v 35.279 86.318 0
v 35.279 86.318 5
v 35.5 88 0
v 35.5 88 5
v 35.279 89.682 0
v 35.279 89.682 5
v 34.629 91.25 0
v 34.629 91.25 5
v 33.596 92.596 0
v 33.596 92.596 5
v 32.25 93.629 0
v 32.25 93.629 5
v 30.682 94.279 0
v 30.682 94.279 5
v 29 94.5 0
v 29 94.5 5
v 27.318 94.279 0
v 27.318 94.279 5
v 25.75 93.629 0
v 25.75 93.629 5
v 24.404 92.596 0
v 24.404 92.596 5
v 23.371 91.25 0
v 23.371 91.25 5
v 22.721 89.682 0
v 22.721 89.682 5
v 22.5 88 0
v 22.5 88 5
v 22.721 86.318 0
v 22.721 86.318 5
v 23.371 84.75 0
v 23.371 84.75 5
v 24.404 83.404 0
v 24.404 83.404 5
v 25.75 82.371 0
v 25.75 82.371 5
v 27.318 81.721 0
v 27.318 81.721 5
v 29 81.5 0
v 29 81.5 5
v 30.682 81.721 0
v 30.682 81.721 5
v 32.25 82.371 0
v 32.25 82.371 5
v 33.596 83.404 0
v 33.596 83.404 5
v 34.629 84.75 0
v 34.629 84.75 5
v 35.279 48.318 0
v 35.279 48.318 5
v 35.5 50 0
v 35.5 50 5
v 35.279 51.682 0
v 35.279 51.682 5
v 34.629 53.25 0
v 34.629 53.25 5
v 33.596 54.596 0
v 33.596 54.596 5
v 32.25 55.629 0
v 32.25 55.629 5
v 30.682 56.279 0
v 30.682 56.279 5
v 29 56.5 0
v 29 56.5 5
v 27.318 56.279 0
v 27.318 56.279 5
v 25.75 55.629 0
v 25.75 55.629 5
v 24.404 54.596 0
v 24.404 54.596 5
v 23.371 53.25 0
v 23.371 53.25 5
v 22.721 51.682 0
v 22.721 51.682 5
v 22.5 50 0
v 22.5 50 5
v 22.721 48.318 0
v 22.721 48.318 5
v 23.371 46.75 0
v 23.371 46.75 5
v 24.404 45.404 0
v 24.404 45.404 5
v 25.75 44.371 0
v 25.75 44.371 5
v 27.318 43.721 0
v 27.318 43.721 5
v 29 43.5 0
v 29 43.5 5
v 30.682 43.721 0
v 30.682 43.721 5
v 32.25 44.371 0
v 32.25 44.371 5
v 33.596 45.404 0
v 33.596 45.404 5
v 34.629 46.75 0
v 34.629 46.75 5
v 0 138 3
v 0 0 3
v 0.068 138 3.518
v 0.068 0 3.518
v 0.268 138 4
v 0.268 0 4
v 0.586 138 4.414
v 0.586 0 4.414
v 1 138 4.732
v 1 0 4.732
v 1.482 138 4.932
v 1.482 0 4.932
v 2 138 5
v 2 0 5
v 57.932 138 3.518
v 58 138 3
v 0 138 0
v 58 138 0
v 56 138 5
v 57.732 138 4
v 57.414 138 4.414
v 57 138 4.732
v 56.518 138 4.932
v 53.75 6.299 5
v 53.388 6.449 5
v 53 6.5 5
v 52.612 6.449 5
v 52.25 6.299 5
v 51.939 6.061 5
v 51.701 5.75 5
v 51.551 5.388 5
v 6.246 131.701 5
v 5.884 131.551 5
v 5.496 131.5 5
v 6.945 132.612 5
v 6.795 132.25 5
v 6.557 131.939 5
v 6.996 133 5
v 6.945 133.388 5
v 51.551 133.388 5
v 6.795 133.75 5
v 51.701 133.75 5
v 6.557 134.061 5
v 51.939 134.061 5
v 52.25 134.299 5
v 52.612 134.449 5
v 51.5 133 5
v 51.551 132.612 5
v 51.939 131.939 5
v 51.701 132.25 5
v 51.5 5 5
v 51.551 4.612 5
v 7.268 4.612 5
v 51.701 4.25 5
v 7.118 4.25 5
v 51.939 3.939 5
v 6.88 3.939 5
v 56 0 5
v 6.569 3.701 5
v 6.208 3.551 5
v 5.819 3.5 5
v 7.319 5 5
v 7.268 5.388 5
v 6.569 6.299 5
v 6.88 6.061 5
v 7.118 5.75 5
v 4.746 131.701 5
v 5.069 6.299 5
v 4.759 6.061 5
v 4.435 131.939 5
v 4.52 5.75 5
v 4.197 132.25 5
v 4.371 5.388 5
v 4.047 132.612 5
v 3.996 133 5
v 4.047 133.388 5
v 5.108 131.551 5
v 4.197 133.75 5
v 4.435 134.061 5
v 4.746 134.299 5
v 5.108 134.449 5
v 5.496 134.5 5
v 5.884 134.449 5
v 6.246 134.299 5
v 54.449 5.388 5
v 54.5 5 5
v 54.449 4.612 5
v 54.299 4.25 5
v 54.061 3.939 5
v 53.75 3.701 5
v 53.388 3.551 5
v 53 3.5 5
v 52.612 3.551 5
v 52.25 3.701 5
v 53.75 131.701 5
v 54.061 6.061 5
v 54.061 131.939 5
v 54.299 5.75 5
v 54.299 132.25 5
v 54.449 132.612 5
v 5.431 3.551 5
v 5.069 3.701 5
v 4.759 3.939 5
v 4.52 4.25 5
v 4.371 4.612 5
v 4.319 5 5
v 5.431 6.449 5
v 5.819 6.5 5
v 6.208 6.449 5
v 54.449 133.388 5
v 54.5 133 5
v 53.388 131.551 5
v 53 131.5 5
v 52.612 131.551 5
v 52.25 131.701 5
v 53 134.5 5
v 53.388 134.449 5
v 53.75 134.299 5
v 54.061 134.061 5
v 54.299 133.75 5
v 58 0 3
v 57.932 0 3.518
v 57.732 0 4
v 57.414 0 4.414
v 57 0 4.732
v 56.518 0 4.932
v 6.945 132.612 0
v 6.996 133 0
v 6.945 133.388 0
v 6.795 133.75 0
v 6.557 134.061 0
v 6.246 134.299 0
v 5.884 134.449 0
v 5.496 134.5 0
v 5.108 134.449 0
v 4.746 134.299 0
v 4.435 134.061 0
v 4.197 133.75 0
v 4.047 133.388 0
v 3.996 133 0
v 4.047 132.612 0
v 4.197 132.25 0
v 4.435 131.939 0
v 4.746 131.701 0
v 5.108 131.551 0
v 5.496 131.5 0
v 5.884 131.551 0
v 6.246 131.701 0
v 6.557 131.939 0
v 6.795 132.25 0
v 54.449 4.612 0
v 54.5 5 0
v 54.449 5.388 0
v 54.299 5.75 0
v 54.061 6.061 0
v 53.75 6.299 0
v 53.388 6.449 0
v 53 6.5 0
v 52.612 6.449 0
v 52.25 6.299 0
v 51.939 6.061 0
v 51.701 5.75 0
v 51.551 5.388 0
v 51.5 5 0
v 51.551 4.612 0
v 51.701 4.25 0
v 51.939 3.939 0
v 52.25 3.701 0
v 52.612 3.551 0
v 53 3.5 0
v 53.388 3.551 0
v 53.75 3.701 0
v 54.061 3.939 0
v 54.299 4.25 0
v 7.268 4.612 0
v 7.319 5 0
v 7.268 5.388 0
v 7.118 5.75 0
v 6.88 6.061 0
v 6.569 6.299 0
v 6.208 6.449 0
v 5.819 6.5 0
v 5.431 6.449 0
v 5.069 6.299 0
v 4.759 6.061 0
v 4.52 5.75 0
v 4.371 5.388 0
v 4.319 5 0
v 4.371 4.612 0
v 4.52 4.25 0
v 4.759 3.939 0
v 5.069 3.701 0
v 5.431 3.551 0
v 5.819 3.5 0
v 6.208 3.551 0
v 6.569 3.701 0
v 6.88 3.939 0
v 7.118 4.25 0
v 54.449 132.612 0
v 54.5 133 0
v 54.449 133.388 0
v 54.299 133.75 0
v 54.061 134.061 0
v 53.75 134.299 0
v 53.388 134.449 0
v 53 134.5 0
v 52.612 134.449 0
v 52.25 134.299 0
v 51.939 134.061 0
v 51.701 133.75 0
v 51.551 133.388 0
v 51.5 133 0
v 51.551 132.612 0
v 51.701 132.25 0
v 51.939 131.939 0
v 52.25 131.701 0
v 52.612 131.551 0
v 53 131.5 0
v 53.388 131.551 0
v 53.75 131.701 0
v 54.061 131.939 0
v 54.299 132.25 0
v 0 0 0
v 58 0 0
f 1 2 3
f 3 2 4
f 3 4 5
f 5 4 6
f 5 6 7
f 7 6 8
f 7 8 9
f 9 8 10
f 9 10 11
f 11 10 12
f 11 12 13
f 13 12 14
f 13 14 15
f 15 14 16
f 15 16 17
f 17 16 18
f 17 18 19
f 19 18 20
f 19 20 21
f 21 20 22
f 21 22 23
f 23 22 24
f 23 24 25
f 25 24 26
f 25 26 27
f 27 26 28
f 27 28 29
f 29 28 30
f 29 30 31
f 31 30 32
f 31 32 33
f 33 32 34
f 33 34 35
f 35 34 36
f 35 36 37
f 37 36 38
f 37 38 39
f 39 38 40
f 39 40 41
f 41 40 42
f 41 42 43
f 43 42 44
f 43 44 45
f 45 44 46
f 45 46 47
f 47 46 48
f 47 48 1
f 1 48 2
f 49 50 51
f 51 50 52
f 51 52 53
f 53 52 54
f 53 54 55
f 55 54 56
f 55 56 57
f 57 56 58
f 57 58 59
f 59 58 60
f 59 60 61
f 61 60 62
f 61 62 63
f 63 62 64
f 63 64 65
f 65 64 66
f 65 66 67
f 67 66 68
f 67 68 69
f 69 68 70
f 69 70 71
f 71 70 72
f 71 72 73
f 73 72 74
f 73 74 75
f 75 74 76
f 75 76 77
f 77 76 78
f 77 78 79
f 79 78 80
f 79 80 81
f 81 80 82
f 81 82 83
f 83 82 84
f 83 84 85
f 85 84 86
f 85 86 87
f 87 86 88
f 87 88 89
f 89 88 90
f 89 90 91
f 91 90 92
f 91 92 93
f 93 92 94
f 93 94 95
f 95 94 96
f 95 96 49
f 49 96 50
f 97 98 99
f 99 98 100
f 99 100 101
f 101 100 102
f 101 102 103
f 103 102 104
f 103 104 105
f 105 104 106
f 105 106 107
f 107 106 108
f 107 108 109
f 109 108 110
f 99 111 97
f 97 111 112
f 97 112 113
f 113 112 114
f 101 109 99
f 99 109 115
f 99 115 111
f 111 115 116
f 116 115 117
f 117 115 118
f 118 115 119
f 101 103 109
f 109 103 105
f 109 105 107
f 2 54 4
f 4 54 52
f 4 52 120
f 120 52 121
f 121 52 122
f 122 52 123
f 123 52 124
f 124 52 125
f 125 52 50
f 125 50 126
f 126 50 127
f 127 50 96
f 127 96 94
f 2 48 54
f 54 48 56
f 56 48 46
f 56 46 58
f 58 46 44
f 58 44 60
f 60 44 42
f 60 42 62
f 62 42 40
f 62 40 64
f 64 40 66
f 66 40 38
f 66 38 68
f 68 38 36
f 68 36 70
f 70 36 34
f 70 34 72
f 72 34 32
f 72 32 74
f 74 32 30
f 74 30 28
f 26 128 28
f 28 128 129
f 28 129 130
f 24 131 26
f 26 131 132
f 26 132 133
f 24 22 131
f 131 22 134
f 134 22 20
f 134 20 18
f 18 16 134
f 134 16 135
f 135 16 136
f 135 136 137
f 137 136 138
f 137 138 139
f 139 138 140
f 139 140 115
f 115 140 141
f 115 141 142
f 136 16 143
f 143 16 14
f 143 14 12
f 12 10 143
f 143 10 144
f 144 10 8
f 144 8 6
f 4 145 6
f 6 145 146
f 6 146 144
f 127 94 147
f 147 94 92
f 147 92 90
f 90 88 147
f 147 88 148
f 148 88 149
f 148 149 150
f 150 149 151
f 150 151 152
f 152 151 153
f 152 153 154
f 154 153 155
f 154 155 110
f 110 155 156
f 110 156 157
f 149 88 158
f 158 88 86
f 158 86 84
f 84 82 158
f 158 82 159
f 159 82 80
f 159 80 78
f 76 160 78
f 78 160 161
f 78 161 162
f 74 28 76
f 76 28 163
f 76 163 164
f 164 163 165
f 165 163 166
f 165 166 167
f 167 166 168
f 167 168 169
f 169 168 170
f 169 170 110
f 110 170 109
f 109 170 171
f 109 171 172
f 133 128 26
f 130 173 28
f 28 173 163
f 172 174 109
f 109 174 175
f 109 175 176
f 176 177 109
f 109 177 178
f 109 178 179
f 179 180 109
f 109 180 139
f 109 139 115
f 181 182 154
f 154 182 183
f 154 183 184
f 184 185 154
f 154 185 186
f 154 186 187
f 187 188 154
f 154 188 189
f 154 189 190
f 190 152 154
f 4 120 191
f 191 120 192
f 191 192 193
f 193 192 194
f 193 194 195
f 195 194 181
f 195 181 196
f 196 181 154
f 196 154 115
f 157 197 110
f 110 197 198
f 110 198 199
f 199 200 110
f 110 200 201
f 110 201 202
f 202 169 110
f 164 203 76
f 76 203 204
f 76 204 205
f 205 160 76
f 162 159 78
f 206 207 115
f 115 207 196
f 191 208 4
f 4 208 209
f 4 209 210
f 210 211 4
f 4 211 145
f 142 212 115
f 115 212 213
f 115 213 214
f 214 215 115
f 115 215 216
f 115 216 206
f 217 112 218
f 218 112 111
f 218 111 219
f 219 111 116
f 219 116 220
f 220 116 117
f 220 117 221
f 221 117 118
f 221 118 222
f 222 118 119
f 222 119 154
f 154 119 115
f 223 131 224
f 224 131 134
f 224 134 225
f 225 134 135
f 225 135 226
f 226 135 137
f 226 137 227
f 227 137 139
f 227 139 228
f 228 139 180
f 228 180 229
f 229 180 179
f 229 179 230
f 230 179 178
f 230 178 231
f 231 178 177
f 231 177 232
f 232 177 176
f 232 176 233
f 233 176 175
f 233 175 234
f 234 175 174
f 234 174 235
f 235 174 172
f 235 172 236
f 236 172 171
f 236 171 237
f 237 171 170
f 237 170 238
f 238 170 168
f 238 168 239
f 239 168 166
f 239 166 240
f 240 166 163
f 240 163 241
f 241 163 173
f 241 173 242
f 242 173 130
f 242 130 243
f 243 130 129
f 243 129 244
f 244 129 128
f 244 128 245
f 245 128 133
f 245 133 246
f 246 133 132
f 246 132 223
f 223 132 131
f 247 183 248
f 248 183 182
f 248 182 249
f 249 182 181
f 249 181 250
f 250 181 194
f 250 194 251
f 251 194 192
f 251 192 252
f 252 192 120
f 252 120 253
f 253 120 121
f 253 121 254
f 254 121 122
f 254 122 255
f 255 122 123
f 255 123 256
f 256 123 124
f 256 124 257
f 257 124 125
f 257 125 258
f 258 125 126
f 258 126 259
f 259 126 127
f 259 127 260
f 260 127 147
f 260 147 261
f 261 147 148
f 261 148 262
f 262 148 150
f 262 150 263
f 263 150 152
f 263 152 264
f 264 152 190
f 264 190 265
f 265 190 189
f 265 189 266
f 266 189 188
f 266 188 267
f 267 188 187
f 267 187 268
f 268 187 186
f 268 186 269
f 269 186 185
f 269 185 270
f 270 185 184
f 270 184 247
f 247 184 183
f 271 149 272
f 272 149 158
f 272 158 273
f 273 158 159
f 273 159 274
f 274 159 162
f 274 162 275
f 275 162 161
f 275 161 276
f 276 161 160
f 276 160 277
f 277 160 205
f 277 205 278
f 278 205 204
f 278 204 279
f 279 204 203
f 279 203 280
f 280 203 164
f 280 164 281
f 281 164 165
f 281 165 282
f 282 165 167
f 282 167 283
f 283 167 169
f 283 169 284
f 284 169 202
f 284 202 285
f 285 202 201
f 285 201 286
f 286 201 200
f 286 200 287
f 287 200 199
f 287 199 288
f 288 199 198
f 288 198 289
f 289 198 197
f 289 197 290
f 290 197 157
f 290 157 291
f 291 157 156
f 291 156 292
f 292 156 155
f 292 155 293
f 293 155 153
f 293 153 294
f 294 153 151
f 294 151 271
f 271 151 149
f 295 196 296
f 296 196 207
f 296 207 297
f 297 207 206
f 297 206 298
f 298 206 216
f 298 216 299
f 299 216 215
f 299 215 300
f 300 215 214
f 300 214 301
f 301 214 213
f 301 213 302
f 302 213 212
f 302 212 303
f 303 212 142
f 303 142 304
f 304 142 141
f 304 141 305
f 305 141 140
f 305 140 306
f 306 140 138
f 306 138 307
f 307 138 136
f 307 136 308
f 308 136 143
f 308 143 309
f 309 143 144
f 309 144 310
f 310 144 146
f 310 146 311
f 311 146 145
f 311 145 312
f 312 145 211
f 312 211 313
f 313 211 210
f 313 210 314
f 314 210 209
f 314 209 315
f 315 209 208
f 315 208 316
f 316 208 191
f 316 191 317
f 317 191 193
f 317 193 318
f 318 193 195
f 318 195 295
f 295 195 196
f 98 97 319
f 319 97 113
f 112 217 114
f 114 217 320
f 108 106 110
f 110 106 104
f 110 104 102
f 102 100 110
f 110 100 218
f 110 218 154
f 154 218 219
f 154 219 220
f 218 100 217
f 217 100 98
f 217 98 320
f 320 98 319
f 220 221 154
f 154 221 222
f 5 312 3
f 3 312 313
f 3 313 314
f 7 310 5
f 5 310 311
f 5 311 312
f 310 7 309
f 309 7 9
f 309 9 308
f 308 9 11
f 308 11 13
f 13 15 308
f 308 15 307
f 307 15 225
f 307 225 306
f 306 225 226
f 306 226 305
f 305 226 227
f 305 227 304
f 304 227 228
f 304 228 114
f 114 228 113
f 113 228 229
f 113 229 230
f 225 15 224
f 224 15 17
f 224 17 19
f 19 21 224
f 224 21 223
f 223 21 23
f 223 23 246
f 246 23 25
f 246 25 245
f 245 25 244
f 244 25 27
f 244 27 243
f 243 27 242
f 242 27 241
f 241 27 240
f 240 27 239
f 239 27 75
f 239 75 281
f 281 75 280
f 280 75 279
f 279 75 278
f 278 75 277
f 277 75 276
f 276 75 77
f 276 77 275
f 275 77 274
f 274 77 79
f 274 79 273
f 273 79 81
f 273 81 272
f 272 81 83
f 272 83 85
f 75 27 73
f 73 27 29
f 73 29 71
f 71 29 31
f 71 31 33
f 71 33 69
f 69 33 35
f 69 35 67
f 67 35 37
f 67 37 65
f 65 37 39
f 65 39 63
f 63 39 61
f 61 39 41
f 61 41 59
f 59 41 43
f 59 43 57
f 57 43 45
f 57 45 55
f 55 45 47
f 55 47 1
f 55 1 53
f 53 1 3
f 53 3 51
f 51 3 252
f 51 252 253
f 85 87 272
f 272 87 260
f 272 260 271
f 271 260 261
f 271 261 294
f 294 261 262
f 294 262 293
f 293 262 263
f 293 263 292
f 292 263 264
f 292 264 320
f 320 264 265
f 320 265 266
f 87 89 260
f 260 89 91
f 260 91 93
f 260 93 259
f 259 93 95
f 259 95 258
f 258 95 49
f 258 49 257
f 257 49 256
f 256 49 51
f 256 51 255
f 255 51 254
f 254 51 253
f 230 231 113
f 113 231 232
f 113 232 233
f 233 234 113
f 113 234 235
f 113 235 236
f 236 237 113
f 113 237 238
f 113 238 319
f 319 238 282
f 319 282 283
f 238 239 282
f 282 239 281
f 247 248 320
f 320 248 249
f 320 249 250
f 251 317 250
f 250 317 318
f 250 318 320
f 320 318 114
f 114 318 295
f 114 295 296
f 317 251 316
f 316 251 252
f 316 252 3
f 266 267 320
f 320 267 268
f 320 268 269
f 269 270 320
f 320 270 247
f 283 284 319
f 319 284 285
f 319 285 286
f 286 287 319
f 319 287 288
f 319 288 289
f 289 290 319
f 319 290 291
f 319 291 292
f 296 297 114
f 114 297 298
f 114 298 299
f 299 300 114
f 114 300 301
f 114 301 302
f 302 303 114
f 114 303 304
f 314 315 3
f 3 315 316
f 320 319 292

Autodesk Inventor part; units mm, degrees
ref_plane "YZ Plane" through (0, 0, 0) normal (1, 0, 0) x (0, 1, 0)
ref_plane "XZ Plane" through (0, 0, 0) normal (0, 1, 0) x (-1, 0, 0)
ref_plane "XY Plane" through (0, 0, 0) normal (0, 0, 1) x (1, 0, 0)
sketch "Sketch1" plane through (0, 0, 0) normal (0, 0, 1) x (1, 0, 0)
  line L0 (0, 0) -> (58, 0)
  line L1 (58, 0) -> (58, 138)
  line L2 (58, 138) -> (0, 138)
  line L3 (0, 138) -> (0, 0)
  dimension "d0" = 58
  dimension "d1" = 138
extrude "Extrusion1" add sketch "Sketch1" along normal blind 5
sketch "Sketch2" plane through (0, 0, 5) normal (0, 0, 1) x (1, 0, 0)
  circle A0 centre (53, 5) radius 1.5
  circle A1 centre (5.8194, 5) radius 1.5
  line L0 (58, 138) -> (0, 138) projected
  line L1 (0, 138) -> (0, 0) projected
  circle A2 centre (5.4959, 133) radius 1.5
  line L2 (58, 0) -> (58, 138) projected
  circle A3 centre (53, 133) radius 1.5
  dimension "d6" = 3
  dimension "d8" = 3
  dimension "d10" = 3
  dimension "d13" = 3
extrude "Extrusion2" cut sketch "Sketch2" against normal through all
fillet "Fillet1" radius 2 2 edges at (58, 69, 5) (0, 69, 5)
sketch "Sketch3" plane through (0, 0, 5) normal (0, 0, 1) x (1, 0, 0)
  line L0 (56, 138) -> (2, 138) projected
  circle A0 centre (29, 88) radius 6.5
  line L1 (0, 0) -> (58, 0) projected
  circle A1 centre (29, 50) radius 6.5
  dimension "d18" = 13
  dimension "d20" = 13
extrude "Extrusion3" cut sketch "Sketch3" against normal through all
properties part number "ICE CREAM COVER"
